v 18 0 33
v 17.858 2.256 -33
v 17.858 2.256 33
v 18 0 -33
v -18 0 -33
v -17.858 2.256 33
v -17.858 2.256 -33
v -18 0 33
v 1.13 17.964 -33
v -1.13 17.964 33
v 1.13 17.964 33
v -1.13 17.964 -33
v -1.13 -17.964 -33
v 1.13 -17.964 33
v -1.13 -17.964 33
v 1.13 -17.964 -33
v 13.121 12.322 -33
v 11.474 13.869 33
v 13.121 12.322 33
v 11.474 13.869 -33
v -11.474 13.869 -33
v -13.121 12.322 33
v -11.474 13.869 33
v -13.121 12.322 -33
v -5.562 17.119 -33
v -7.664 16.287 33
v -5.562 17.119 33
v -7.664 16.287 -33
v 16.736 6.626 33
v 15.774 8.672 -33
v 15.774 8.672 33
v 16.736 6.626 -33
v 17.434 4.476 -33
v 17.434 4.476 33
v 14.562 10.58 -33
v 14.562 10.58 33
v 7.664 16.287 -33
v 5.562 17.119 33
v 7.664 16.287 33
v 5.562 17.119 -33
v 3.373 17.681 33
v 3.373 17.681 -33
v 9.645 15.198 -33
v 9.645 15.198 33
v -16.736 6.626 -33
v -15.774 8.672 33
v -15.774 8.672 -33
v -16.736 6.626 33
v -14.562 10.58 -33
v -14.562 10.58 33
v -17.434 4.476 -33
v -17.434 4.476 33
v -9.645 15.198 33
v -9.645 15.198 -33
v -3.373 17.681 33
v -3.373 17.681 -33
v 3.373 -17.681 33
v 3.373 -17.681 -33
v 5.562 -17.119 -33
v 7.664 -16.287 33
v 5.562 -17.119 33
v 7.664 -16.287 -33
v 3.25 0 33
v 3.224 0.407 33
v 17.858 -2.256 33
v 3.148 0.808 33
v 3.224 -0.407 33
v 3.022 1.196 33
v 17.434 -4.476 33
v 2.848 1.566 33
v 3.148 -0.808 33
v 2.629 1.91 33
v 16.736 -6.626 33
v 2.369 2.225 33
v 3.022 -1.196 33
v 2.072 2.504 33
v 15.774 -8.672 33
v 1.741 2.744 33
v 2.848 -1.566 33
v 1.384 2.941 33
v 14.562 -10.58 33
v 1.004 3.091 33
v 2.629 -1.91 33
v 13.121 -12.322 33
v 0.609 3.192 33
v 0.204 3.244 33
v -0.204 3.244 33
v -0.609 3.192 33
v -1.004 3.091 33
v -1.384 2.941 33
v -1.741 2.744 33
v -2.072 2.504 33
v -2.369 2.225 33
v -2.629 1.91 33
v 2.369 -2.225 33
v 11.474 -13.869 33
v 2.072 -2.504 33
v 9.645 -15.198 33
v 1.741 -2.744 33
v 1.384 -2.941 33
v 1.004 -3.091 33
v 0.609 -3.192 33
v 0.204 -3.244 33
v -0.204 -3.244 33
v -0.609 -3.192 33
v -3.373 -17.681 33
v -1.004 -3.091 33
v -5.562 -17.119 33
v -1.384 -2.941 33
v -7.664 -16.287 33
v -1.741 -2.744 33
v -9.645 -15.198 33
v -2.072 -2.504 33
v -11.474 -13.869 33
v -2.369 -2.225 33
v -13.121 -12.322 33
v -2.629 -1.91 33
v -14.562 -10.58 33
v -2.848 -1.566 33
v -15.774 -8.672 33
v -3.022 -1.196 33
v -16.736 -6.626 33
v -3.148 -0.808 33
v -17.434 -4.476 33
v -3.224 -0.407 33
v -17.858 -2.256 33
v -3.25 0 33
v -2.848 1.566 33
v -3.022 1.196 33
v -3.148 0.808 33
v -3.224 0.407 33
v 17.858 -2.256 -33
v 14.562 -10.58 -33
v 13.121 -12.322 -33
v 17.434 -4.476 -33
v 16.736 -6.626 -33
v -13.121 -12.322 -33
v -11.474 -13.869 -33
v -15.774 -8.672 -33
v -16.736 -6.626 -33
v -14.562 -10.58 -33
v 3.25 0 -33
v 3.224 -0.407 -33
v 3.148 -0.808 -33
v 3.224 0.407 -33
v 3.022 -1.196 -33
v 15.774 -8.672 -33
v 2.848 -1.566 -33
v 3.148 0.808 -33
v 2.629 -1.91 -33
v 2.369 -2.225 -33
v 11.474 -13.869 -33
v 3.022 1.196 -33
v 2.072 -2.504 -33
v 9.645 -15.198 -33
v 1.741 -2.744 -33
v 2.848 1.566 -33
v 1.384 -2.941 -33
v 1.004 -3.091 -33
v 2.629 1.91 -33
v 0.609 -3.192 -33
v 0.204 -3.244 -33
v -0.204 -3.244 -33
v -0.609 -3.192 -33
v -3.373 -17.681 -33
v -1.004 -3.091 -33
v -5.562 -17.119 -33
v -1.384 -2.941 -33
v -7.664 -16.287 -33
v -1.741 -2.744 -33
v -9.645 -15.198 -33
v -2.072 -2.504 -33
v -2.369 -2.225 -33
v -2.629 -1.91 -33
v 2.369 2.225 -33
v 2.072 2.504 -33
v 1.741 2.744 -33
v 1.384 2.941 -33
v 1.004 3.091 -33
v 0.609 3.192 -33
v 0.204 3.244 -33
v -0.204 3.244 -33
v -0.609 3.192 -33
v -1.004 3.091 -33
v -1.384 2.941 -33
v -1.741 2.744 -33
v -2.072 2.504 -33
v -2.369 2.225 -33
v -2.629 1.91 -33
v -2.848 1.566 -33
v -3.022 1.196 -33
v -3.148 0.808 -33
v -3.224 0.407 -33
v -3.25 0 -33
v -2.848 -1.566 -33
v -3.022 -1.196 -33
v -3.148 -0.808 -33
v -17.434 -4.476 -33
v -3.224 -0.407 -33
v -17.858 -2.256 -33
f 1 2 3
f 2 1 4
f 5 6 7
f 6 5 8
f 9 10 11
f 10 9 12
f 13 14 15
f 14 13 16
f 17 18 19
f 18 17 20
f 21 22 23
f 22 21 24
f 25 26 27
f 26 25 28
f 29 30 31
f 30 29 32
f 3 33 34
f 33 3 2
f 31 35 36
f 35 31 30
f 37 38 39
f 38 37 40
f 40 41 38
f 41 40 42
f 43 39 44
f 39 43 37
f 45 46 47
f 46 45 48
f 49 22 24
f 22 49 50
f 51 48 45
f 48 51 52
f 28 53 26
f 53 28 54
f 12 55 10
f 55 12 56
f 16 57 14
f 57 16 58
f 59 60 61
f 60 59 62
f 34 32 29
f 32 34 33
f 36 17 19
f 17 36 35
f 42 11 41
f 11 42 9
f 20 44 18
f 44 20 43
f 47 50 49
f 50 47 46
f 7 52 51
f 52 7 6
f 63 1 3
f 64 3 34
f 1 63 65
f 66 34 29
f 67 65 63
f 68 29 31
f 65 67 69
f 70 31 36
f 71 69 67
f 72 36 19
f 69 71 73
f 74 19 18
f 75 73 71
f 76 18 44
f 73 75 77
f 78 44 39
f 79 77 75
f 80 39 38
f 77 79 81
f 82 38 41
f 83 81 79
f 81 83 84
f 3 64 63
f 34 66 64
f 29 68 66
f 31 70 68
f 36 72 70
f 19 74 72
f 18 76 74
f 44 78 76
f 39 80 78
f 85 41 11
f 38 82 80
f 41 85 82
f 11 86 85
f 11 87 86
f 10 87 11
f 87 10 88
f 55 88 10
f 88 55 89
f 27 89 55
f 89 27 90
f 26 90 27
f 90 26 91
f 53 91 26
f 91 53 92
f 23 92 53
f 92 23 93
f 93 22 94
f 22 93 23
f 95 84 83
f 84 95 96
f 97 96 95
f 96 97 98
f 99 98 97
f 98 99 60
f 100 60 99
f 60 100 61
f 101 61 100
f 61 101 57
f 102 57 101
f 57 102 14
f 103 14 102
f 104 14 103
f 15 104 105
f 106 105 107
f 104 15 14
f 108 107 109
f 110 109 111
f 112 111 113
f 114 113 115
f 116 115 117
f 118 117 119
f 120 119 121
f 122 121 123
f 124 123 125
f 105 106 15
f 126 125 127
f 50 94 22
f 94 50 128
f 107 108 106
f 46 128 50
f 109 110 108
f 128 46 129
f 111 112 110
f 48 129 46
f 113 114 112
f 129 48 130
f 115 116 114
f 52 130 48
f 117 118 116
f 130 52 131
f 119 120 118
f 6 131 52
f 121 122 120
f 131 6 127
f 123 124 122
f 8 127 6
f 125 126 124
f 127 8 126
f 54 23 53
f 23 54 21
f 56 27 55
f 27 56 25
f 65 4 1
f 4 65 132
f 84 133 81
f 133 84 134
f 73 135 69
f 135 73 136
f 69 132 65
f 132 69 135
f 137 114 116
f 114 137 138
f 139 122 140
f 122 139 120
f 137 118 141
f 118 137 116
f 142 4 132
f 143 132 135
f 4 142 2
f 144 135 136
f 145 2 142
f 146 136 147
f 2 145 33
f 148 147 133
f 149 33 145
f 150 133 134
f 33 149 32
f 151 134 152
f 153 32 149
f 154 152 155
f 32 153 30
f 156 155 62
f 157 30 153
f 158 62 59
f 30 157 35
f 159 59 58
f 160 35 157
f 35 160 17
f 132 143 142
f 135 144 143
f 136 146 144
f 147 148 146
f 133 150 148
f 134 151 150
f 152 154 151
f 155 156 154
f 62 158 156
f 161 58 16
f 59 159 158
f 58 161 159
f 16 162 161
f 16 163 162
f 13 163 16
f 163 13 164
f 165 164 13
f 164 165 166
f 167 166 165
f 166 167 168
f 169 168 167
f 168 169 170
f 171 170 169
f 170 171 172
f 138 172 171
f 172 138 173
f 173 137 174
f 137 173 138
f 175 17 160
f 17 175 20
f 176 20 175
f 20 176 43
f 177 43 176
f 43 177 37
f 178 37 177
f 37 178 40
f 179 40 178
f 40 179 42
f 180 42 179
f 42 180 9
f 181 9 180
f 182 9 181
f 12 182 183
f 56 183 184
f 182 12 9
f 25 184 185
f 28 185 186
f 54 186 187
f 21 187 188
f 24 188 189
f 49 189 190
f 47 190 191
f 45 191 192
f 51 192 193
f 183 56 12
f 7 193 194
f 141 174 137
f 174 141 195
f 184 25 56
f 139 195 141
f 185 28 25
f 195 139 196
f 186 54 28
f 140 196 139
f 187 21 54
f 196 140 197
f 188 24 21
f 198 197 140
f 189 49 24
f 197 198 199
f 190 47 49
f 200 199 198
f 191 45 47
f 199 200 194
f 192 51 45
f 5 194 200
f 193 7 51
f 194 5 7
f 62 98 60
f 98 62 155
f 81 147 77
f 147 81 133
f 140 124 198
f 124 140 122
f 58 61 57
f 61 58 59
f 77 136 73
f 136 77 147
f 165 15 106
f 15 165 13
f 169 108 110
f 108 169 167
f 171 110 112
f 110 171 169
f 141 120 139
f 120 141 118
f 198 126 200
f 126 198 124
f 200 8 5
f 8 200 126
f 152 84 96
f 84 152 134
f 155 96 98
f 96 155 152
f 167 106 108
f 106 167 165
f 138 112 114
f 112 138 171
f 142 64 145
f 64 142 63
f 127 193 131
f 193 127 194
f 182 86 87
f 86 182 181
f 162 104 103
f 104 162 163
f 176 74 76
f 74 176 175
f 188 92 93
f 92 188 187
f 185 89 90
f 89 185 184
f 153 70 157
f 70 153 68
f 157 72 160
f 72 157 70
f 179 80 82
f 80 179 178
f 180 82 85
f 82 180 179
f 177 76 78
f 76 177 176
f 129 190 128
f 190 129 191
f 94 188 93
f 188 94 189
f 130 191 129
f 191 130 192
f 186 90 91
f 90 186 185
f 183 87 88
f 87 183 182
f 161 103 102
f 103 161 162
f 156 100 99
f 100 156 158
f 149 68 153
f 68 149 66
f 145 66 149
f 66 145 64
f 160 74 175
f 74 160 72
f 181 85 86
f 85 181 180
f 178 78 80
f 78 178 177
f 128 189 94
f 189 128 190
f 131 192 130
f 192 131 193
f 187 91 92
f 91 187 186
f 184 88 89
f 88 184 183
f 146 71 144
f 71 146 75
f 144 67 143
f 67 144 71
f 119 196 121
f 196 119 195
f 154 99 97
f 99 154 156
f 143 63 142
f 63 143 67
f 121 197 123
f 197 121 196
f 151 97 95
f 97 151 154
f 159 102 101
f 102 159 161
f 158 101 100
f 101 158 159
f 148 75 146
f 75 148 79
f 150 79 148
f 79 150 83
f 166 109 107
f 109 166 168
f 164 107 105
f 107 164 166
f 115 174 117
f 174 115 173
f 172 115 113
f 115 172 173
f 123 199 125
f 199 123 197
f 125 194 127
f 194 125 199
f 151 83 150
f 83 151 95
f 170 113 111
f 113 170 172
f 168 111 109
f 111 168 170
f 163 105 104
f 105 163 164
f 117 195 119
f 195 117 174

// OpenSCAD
$fn = 50;


difference() {
	union() {
		translate(v = [0, 0, -33.0000000000]) {
			cylinder(h = 66, r = 18.0000000000);
		}
	}
	union() {
		translate(v = [0, 0, -100.0000000000]) {
			cylinder(h = 200, r = 3.2500000000);
		}
	}
}
